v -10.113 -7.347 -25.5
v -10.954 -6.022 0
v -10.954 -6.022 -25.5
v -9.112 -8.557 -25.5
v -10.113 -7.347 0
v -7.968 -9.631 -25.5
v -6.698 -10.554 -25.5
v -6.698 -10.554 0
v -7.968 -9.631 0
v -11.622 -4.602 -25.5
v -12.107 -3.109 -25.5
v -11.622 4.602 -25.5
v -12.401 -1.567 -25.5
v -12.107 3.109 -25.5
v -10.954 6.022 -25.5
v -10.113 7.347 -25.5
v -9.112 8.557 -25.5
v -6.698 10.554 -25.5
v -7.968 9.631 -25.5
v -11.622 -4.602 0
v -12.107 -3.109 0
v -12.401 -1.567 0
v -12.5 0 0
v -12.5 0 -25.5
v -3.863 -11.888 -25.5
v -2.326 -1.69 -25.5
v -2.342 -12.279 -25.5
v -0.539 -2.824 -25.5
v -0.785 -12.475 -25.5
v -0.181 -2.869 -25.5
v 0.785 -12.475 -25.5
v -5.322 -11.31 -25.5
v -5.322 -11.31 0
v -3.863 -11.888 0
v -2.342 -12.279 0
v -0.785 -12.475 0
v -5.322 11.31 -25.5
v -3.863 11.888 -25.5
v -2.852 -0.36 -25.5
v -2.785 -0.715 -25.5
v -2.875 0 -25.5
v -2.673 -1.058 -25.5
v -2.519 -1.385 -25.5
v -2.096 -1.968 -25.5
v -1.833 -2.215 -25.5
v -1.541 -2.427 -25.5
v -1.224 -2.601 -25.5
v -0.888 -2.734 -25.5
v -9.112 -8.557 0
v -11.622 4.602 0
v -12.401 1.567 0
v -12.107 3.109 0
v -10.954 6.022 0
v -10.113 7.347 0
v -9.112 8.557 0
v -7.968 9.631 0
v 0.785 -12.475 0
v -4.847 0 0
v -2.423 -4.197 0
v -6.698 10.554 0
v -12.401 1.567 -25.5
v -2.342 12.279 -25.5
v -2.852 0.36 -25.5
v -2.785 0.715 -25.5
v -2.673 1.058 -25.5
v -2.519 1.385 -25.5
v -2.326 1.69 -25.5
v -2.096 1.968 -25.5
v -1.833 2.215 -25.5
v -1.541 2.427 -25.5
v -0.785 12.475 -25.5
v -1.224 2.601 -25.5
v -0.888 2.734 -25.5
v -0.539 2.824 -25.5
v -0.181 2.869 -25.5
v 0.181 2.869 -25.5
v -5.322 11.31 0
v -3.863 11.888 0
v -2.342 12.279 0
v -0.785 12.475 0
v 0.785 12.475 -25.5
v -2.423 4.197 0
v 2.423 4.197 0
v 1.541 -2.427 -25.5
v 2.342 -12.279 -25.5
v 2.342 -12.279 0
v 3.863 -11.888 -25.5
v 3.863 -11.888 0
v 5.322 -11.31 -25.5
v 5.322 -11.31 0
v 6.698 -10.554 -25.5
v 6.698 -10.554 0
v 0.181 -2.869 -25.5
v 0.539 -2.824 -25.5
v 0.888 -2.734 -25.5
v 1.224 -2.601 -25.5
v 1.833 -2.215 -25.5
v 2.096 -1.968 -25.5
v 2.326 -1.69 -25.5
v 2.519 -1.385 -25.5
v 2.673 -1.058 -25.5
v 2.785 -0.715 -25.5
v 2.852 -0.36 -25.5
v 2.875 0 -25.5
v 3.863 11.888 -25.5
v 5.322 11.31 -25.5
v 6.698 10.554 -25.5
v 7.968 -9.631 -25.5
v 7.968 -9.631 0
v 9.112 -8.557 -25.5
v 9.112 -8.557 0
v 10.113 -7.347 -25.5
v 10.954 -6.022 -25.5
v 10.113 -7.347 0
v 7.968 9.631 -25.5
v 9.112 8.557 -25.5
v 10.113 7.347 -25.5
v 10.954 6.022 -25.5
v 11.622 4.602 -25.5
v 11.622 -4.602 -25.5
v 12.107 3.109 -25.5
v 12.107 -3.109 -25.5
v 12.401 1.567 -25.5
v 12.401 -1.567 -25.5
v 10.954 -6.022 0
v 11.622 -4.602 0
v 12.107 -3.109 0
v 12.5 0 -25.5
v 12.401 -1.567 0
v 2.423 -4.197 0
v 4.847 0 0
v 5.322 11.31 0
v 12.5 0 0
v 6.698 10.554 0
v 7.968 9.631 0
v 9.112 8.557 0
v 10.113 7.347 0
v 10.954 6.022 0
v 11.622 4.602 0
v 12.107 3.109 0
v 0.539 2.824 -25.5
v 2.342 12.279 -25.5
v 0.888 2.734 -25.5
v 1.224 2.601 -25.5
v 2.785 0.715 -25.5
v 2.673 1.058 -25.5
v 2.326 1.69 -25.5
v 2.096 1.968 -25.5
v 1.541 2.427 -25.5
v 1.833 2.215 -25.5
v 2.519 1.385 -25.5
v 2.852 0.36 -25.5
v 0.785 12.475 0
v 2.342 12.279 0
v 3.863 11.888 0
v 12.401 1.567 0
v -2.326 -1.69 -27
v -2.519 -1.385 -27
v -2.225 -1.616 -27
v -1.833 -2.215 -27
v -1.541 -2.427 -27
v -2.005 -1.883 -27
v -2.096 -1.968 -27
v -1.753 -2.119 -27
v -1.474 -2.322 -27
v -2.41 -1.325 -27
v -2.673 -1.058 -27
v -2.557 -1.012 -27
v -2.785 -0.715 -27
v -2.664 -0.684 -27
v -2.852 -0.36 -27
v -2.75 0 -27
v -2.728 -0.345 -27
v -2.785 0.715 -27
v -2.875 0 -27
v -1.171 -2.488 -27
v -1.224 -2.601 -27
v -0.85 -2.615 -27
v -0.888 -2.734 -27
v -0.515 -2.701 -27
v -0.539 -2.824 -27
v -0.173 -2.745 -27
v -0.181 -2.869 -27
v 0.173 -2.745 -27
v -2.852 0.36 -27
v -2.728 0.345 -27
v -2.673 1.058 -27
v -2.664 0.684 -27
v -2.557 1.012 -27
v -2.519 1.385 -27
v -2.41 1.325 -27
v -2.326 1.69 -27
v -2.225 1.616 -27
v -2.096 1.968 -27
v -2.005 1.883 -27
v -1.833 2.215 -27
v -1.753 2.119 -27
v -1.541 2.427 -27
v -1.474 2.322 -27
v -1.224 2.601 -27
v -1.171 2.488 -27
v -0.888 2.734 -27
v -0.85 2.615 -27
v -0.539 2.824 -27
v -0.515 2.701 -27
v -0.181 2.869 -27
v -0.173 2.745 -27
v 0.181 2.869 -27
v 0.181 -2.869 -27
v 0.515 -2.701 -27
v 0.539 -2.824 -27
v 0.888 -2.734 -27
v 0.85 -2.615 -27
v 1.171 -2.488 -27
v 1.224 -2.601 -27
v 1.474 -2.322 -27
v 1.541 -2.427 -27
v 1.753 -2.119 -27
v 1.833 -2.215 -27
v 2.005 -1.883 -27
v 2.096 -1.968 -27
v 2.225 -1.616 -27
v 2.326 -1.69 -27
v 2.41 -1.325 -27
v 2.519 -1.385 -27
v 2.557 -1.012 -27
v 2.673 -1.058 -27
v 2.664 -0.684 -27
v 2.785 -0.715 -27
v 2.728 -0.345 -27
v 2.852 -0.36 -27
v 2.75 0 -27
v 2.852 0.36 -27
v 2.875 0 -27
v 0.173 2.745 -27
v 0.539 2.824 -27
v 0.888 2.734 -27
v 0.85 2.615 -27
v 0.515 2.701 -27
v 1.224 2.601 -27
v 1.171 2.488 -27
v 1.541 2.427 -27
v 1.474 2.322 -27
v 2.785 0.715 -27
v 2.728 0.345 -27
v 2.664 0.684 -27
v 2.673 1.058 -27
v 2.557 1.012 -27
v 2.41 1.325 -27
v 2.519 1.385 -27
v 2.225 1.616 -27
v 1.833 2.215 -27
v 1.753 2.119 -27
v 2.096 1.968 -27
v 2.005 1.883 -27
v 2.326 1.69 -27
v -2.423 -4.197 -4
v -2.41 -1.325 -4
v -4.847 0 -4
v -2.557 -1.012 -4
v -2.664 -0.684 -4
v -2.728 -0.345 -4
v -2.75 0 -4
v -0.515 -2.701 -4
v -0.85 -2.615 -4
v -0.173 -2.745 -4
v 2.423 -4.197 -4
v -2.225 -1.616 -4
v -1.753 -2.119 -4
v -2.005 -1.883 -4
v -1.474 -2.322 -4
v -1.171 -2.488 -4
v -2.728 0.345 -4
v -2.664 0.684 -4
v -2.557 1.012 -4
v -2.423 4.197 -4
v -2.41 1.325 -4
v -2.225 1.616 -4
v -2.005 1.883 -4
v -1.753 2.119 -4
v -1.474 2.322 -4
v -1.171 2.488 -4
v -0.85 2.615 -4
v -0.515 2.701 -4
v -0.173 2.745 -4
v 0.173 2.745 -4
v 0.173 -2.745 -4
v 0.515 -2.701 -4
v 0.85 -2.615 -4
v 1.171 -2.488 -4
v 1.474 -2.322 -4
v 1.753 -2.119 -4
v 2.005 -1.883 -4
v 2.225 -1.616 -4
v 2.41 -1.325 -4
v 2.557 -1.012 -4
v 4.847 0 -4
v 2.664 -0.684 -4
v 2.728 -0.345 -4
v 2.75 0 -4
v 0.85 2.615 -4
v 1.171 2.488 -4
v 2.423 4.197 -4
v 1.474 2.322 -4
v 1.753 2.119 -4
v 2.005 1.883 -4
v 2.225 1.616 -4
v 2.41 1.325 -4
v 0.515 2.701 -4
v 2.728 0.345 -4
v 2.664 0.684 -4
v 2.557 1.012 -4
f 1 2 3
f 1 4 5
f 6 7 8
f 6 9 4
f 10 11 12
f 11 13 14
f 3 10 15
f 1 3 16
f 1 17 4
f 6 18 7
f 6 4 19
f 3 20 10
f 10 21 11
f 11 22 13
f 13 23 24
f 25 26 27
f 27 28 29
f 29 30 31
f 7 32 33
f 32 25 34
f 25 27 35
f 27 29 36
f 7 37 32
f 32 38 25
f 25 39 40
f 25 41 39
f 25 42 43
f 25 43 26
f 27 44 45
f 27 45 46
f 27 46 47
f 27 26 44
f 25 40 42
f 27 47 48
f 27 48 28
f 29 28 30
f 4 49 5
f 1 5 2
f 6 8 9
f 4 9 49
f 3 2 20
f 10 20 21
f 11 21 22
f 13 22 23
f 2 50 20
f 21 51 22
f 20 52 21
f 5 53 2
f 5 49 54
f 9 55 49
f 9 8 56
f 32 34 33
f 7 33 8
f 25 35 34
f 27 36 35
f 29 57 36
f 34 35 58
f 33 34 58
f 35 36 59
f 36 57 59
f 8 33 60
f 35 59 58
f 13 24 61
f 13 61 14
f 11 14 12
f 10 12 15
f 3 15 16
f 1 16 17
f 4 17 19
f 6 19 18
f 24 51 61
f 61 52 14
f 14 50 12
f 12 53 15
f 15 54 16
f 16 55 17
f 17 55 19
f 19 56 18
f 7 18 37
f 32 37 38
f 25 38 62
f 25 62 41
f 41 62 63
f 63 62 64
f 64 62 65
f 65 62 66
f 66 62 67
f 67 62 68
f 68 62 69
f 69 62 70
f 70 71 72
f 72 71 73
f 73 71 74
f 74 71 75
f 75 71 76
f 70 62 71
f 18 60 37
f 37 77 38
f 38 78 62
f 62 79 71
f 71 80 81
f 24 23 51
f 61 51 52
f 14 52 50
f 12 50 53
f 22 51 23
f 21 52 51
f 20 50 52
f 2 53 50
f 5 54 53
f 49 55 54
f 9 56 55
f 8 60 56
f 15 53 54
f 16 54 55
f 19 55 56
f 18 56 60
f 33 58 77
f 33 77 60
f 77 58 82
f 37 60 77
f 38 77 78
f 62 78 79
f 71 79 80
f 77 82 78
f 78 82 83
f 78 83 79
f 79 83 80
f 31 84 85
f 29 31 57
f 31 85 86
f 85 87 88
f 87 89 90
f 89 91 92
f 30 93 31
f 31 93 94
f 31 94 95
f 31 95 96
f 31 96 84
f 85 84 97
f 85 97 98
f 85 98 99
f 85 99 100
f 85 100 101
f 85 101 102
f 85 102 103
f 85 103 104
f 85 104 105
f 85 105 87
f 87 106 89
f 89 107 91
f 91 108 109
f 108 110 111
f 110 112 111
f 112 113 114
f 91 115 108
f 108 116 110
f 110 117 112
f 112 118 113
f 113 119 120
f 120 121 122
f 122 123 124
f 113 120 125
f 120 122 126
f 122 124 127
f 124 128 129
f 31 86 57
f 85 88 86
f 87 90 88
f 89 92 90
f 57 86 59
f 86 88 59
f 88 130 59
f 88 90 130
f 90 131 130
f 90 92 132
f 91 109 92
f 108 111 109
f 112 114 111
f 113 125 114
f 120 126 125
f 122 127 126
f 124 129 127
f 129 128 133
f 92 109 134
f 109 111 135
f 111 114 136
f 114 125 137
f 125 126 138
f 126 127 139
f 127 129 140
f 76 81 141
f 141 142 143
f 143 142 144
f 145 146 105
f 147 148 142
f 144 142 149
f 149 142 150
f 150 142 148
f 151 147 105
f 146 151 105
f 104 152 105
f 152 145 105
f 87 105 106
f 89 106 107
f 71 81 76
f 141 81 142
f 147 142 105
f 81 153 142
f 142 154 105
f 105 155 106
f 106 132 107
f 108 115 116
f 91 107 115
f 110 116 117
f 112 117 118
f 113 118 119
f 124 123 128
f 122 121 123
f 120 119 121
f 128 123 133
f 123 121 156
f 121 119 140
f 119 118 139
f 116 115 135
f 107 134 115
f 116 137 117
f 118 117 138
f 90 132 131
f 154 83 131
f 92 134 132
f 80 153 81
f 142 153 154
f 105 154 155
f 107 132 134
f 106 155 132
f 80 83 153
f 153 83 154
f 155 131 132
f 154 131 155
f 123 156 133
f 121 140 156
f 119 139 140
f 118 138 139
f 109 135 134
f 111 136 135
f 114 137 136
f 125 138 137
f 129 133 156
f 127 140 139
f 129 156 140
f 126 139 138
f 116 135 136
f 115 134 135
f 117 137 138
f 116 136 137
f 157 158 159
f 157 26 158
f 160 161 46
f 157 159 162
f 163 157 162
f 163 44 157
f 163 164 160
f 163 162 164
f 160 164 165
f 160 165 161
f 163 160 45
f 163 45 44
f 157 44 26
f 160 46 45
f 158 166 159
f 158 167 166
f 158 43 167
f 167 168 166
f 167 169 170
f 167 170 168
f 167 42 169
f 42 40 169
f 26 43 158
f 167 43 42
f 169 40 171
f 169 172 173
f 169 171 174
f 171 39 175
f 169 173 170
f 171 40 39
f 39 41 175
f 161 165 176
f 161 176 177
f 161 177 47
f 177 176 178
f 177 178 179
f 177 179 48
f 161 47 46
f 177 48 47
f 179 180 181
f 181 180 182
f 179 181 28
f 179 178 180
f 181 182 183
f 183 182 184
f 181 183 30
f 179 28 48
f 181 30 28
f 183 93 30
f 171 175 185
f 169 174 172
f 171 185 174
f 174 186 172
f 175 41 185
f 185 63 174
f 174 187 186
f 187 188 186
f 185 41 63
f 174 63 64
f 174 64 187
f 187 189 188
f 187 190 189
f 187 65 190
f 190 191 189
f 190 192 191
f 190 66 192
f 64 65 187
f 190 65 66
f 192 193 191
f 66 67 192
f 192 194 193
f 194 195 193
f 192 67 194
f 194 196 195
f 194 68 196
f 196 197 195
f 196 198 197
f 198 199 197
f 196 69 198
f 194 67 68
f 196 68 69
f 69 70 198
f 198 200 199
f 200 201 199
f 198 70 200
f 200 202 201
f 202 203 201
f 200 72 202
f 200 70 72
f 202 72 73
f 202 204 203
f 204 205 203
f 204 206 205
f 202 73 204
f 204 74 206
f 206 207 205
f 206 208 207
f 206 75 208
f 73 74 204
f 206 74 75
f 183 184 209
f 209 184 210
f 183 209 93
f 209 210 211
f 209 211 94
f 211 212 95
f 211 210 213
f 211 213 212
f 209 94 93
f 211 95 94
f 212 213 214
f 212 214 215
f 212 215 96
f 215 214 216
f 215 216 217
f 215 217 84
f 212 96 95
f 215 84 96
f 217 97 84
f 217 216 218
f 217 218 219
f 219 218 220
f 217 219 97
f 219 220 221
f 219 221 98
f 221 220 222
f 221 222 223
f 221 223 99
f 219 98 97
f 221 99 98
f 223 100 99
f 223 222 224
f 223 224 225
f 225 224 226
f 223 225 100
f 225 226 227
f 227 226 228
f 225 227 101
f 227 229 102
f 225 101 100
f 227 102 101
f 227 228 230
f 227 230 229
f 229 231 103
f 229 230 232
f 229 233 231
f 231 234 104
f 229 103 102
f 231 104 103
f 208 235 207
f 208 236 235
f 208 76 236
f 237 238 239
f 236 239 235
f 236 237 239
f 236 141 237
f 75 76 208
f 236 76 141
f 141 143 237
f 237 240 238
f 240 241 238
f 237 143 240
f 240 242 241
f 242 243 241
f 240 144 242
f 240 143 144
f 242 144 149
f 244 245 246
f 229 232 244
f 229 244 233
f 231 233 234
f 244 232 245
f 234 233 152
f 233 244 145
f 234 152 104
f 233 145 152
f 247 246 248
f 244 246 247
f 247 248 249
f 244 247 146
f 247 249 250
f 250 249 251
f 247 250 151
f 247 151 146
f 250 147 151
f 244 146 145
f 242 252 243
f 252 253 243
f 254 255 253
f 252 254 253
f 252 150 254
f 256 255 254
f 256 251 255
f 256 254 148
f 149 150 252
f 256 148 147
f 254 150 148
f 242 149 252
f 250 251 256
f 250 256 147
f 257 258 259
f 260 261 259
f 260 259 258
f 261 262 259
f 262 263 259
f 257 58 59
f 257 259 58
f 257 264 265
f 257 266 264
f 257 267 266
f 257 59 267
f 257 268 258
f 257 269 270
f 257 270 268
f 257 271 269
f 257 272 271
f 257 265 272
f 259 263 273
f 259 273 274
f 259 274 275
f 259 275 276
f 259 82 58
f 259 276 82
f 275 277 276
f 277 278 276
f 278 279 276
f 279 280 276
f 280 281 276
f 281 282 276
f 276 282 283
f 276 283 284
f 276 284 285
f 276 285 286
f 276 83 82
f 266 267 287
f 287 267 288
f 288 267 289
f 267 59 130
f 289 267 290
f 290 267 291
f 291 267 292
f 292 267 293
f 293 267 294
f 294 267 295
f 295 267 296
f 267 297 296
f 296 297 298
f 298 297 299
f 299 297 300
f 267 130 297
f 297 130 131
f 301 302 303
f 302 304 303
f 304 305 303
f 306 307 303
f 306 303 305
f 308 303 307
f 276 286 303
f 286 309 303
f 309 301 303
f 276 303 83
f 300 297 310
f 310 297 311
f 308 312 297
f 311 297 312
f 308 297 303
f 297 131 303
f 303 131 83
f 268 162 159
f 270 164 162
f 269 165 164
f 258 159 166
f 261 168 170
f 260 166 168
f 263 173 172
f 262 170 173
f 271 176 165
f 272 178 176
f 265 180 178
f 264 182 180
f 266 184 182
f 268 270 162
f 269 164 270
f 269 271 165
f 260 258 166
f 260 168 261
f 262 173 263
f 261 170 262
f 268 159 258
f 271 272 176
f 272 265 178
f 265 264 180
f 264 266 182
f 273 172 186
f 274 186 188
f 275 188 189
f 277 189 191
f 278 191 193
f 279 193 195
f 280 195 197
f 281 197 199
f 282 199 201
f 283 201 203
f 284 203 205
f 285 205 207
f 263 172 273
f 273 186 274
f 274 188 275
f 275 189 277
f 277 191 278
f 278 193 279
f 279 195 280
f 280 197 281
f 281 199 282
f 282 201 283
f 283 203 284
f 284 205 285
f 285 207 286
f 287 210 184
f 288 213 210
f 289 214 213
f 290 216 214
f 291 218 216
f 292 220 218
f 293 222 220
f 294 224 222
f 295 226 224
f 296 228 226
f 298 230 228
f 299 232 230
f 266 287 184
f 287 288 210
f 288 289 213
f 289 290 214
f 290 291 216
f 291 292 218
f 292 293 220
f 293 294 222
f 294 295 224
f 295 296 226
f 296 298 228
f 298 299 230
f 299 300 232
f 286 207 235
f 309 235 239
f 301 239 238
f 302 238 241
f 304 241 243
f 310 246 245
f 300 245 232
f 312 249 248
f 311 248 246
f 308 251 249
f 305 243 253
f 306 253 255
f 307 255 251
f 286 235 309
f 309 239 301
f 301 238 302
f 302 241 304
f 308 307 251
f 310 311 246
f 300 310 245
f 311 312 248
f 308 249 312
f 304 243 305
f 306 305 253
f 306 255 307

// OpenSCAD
$fn = 50;

difference() {
	union() {
		translate(v = [0, 0, -25.5]) {
			cylinder(h = 25.5, r = 12.5);
		}
		#translate(v = [0, 0, -27.0]) {
			cylinder(h = 27, r = 2.875);
		}
	}
	union() {
		translate(v = [0, 0, 0]) {
			rotate(a = [0, 0, 0]) {
				difference() {
					union() {
						translate(v = [0, 0, -4]) {
							linear_extrude(height = 4) {
								polygon(points = [[4.8468, 0.0], [2.4234000000000004, 4.197451927062417], [-2.423399999999999, 4.197451927062417], [-4.8468, 5.935618106107392e-16], [-2.423400000000002, -4.197451927062416], [2.423399999999997, -4.197451927062419]]);
							}
						}
					}
					union();
				}
			}
		}
		#translate(v = [0, 0, -100.0]) {
			cylinder(h = 200, r = 2.75);
		}
	}
}
